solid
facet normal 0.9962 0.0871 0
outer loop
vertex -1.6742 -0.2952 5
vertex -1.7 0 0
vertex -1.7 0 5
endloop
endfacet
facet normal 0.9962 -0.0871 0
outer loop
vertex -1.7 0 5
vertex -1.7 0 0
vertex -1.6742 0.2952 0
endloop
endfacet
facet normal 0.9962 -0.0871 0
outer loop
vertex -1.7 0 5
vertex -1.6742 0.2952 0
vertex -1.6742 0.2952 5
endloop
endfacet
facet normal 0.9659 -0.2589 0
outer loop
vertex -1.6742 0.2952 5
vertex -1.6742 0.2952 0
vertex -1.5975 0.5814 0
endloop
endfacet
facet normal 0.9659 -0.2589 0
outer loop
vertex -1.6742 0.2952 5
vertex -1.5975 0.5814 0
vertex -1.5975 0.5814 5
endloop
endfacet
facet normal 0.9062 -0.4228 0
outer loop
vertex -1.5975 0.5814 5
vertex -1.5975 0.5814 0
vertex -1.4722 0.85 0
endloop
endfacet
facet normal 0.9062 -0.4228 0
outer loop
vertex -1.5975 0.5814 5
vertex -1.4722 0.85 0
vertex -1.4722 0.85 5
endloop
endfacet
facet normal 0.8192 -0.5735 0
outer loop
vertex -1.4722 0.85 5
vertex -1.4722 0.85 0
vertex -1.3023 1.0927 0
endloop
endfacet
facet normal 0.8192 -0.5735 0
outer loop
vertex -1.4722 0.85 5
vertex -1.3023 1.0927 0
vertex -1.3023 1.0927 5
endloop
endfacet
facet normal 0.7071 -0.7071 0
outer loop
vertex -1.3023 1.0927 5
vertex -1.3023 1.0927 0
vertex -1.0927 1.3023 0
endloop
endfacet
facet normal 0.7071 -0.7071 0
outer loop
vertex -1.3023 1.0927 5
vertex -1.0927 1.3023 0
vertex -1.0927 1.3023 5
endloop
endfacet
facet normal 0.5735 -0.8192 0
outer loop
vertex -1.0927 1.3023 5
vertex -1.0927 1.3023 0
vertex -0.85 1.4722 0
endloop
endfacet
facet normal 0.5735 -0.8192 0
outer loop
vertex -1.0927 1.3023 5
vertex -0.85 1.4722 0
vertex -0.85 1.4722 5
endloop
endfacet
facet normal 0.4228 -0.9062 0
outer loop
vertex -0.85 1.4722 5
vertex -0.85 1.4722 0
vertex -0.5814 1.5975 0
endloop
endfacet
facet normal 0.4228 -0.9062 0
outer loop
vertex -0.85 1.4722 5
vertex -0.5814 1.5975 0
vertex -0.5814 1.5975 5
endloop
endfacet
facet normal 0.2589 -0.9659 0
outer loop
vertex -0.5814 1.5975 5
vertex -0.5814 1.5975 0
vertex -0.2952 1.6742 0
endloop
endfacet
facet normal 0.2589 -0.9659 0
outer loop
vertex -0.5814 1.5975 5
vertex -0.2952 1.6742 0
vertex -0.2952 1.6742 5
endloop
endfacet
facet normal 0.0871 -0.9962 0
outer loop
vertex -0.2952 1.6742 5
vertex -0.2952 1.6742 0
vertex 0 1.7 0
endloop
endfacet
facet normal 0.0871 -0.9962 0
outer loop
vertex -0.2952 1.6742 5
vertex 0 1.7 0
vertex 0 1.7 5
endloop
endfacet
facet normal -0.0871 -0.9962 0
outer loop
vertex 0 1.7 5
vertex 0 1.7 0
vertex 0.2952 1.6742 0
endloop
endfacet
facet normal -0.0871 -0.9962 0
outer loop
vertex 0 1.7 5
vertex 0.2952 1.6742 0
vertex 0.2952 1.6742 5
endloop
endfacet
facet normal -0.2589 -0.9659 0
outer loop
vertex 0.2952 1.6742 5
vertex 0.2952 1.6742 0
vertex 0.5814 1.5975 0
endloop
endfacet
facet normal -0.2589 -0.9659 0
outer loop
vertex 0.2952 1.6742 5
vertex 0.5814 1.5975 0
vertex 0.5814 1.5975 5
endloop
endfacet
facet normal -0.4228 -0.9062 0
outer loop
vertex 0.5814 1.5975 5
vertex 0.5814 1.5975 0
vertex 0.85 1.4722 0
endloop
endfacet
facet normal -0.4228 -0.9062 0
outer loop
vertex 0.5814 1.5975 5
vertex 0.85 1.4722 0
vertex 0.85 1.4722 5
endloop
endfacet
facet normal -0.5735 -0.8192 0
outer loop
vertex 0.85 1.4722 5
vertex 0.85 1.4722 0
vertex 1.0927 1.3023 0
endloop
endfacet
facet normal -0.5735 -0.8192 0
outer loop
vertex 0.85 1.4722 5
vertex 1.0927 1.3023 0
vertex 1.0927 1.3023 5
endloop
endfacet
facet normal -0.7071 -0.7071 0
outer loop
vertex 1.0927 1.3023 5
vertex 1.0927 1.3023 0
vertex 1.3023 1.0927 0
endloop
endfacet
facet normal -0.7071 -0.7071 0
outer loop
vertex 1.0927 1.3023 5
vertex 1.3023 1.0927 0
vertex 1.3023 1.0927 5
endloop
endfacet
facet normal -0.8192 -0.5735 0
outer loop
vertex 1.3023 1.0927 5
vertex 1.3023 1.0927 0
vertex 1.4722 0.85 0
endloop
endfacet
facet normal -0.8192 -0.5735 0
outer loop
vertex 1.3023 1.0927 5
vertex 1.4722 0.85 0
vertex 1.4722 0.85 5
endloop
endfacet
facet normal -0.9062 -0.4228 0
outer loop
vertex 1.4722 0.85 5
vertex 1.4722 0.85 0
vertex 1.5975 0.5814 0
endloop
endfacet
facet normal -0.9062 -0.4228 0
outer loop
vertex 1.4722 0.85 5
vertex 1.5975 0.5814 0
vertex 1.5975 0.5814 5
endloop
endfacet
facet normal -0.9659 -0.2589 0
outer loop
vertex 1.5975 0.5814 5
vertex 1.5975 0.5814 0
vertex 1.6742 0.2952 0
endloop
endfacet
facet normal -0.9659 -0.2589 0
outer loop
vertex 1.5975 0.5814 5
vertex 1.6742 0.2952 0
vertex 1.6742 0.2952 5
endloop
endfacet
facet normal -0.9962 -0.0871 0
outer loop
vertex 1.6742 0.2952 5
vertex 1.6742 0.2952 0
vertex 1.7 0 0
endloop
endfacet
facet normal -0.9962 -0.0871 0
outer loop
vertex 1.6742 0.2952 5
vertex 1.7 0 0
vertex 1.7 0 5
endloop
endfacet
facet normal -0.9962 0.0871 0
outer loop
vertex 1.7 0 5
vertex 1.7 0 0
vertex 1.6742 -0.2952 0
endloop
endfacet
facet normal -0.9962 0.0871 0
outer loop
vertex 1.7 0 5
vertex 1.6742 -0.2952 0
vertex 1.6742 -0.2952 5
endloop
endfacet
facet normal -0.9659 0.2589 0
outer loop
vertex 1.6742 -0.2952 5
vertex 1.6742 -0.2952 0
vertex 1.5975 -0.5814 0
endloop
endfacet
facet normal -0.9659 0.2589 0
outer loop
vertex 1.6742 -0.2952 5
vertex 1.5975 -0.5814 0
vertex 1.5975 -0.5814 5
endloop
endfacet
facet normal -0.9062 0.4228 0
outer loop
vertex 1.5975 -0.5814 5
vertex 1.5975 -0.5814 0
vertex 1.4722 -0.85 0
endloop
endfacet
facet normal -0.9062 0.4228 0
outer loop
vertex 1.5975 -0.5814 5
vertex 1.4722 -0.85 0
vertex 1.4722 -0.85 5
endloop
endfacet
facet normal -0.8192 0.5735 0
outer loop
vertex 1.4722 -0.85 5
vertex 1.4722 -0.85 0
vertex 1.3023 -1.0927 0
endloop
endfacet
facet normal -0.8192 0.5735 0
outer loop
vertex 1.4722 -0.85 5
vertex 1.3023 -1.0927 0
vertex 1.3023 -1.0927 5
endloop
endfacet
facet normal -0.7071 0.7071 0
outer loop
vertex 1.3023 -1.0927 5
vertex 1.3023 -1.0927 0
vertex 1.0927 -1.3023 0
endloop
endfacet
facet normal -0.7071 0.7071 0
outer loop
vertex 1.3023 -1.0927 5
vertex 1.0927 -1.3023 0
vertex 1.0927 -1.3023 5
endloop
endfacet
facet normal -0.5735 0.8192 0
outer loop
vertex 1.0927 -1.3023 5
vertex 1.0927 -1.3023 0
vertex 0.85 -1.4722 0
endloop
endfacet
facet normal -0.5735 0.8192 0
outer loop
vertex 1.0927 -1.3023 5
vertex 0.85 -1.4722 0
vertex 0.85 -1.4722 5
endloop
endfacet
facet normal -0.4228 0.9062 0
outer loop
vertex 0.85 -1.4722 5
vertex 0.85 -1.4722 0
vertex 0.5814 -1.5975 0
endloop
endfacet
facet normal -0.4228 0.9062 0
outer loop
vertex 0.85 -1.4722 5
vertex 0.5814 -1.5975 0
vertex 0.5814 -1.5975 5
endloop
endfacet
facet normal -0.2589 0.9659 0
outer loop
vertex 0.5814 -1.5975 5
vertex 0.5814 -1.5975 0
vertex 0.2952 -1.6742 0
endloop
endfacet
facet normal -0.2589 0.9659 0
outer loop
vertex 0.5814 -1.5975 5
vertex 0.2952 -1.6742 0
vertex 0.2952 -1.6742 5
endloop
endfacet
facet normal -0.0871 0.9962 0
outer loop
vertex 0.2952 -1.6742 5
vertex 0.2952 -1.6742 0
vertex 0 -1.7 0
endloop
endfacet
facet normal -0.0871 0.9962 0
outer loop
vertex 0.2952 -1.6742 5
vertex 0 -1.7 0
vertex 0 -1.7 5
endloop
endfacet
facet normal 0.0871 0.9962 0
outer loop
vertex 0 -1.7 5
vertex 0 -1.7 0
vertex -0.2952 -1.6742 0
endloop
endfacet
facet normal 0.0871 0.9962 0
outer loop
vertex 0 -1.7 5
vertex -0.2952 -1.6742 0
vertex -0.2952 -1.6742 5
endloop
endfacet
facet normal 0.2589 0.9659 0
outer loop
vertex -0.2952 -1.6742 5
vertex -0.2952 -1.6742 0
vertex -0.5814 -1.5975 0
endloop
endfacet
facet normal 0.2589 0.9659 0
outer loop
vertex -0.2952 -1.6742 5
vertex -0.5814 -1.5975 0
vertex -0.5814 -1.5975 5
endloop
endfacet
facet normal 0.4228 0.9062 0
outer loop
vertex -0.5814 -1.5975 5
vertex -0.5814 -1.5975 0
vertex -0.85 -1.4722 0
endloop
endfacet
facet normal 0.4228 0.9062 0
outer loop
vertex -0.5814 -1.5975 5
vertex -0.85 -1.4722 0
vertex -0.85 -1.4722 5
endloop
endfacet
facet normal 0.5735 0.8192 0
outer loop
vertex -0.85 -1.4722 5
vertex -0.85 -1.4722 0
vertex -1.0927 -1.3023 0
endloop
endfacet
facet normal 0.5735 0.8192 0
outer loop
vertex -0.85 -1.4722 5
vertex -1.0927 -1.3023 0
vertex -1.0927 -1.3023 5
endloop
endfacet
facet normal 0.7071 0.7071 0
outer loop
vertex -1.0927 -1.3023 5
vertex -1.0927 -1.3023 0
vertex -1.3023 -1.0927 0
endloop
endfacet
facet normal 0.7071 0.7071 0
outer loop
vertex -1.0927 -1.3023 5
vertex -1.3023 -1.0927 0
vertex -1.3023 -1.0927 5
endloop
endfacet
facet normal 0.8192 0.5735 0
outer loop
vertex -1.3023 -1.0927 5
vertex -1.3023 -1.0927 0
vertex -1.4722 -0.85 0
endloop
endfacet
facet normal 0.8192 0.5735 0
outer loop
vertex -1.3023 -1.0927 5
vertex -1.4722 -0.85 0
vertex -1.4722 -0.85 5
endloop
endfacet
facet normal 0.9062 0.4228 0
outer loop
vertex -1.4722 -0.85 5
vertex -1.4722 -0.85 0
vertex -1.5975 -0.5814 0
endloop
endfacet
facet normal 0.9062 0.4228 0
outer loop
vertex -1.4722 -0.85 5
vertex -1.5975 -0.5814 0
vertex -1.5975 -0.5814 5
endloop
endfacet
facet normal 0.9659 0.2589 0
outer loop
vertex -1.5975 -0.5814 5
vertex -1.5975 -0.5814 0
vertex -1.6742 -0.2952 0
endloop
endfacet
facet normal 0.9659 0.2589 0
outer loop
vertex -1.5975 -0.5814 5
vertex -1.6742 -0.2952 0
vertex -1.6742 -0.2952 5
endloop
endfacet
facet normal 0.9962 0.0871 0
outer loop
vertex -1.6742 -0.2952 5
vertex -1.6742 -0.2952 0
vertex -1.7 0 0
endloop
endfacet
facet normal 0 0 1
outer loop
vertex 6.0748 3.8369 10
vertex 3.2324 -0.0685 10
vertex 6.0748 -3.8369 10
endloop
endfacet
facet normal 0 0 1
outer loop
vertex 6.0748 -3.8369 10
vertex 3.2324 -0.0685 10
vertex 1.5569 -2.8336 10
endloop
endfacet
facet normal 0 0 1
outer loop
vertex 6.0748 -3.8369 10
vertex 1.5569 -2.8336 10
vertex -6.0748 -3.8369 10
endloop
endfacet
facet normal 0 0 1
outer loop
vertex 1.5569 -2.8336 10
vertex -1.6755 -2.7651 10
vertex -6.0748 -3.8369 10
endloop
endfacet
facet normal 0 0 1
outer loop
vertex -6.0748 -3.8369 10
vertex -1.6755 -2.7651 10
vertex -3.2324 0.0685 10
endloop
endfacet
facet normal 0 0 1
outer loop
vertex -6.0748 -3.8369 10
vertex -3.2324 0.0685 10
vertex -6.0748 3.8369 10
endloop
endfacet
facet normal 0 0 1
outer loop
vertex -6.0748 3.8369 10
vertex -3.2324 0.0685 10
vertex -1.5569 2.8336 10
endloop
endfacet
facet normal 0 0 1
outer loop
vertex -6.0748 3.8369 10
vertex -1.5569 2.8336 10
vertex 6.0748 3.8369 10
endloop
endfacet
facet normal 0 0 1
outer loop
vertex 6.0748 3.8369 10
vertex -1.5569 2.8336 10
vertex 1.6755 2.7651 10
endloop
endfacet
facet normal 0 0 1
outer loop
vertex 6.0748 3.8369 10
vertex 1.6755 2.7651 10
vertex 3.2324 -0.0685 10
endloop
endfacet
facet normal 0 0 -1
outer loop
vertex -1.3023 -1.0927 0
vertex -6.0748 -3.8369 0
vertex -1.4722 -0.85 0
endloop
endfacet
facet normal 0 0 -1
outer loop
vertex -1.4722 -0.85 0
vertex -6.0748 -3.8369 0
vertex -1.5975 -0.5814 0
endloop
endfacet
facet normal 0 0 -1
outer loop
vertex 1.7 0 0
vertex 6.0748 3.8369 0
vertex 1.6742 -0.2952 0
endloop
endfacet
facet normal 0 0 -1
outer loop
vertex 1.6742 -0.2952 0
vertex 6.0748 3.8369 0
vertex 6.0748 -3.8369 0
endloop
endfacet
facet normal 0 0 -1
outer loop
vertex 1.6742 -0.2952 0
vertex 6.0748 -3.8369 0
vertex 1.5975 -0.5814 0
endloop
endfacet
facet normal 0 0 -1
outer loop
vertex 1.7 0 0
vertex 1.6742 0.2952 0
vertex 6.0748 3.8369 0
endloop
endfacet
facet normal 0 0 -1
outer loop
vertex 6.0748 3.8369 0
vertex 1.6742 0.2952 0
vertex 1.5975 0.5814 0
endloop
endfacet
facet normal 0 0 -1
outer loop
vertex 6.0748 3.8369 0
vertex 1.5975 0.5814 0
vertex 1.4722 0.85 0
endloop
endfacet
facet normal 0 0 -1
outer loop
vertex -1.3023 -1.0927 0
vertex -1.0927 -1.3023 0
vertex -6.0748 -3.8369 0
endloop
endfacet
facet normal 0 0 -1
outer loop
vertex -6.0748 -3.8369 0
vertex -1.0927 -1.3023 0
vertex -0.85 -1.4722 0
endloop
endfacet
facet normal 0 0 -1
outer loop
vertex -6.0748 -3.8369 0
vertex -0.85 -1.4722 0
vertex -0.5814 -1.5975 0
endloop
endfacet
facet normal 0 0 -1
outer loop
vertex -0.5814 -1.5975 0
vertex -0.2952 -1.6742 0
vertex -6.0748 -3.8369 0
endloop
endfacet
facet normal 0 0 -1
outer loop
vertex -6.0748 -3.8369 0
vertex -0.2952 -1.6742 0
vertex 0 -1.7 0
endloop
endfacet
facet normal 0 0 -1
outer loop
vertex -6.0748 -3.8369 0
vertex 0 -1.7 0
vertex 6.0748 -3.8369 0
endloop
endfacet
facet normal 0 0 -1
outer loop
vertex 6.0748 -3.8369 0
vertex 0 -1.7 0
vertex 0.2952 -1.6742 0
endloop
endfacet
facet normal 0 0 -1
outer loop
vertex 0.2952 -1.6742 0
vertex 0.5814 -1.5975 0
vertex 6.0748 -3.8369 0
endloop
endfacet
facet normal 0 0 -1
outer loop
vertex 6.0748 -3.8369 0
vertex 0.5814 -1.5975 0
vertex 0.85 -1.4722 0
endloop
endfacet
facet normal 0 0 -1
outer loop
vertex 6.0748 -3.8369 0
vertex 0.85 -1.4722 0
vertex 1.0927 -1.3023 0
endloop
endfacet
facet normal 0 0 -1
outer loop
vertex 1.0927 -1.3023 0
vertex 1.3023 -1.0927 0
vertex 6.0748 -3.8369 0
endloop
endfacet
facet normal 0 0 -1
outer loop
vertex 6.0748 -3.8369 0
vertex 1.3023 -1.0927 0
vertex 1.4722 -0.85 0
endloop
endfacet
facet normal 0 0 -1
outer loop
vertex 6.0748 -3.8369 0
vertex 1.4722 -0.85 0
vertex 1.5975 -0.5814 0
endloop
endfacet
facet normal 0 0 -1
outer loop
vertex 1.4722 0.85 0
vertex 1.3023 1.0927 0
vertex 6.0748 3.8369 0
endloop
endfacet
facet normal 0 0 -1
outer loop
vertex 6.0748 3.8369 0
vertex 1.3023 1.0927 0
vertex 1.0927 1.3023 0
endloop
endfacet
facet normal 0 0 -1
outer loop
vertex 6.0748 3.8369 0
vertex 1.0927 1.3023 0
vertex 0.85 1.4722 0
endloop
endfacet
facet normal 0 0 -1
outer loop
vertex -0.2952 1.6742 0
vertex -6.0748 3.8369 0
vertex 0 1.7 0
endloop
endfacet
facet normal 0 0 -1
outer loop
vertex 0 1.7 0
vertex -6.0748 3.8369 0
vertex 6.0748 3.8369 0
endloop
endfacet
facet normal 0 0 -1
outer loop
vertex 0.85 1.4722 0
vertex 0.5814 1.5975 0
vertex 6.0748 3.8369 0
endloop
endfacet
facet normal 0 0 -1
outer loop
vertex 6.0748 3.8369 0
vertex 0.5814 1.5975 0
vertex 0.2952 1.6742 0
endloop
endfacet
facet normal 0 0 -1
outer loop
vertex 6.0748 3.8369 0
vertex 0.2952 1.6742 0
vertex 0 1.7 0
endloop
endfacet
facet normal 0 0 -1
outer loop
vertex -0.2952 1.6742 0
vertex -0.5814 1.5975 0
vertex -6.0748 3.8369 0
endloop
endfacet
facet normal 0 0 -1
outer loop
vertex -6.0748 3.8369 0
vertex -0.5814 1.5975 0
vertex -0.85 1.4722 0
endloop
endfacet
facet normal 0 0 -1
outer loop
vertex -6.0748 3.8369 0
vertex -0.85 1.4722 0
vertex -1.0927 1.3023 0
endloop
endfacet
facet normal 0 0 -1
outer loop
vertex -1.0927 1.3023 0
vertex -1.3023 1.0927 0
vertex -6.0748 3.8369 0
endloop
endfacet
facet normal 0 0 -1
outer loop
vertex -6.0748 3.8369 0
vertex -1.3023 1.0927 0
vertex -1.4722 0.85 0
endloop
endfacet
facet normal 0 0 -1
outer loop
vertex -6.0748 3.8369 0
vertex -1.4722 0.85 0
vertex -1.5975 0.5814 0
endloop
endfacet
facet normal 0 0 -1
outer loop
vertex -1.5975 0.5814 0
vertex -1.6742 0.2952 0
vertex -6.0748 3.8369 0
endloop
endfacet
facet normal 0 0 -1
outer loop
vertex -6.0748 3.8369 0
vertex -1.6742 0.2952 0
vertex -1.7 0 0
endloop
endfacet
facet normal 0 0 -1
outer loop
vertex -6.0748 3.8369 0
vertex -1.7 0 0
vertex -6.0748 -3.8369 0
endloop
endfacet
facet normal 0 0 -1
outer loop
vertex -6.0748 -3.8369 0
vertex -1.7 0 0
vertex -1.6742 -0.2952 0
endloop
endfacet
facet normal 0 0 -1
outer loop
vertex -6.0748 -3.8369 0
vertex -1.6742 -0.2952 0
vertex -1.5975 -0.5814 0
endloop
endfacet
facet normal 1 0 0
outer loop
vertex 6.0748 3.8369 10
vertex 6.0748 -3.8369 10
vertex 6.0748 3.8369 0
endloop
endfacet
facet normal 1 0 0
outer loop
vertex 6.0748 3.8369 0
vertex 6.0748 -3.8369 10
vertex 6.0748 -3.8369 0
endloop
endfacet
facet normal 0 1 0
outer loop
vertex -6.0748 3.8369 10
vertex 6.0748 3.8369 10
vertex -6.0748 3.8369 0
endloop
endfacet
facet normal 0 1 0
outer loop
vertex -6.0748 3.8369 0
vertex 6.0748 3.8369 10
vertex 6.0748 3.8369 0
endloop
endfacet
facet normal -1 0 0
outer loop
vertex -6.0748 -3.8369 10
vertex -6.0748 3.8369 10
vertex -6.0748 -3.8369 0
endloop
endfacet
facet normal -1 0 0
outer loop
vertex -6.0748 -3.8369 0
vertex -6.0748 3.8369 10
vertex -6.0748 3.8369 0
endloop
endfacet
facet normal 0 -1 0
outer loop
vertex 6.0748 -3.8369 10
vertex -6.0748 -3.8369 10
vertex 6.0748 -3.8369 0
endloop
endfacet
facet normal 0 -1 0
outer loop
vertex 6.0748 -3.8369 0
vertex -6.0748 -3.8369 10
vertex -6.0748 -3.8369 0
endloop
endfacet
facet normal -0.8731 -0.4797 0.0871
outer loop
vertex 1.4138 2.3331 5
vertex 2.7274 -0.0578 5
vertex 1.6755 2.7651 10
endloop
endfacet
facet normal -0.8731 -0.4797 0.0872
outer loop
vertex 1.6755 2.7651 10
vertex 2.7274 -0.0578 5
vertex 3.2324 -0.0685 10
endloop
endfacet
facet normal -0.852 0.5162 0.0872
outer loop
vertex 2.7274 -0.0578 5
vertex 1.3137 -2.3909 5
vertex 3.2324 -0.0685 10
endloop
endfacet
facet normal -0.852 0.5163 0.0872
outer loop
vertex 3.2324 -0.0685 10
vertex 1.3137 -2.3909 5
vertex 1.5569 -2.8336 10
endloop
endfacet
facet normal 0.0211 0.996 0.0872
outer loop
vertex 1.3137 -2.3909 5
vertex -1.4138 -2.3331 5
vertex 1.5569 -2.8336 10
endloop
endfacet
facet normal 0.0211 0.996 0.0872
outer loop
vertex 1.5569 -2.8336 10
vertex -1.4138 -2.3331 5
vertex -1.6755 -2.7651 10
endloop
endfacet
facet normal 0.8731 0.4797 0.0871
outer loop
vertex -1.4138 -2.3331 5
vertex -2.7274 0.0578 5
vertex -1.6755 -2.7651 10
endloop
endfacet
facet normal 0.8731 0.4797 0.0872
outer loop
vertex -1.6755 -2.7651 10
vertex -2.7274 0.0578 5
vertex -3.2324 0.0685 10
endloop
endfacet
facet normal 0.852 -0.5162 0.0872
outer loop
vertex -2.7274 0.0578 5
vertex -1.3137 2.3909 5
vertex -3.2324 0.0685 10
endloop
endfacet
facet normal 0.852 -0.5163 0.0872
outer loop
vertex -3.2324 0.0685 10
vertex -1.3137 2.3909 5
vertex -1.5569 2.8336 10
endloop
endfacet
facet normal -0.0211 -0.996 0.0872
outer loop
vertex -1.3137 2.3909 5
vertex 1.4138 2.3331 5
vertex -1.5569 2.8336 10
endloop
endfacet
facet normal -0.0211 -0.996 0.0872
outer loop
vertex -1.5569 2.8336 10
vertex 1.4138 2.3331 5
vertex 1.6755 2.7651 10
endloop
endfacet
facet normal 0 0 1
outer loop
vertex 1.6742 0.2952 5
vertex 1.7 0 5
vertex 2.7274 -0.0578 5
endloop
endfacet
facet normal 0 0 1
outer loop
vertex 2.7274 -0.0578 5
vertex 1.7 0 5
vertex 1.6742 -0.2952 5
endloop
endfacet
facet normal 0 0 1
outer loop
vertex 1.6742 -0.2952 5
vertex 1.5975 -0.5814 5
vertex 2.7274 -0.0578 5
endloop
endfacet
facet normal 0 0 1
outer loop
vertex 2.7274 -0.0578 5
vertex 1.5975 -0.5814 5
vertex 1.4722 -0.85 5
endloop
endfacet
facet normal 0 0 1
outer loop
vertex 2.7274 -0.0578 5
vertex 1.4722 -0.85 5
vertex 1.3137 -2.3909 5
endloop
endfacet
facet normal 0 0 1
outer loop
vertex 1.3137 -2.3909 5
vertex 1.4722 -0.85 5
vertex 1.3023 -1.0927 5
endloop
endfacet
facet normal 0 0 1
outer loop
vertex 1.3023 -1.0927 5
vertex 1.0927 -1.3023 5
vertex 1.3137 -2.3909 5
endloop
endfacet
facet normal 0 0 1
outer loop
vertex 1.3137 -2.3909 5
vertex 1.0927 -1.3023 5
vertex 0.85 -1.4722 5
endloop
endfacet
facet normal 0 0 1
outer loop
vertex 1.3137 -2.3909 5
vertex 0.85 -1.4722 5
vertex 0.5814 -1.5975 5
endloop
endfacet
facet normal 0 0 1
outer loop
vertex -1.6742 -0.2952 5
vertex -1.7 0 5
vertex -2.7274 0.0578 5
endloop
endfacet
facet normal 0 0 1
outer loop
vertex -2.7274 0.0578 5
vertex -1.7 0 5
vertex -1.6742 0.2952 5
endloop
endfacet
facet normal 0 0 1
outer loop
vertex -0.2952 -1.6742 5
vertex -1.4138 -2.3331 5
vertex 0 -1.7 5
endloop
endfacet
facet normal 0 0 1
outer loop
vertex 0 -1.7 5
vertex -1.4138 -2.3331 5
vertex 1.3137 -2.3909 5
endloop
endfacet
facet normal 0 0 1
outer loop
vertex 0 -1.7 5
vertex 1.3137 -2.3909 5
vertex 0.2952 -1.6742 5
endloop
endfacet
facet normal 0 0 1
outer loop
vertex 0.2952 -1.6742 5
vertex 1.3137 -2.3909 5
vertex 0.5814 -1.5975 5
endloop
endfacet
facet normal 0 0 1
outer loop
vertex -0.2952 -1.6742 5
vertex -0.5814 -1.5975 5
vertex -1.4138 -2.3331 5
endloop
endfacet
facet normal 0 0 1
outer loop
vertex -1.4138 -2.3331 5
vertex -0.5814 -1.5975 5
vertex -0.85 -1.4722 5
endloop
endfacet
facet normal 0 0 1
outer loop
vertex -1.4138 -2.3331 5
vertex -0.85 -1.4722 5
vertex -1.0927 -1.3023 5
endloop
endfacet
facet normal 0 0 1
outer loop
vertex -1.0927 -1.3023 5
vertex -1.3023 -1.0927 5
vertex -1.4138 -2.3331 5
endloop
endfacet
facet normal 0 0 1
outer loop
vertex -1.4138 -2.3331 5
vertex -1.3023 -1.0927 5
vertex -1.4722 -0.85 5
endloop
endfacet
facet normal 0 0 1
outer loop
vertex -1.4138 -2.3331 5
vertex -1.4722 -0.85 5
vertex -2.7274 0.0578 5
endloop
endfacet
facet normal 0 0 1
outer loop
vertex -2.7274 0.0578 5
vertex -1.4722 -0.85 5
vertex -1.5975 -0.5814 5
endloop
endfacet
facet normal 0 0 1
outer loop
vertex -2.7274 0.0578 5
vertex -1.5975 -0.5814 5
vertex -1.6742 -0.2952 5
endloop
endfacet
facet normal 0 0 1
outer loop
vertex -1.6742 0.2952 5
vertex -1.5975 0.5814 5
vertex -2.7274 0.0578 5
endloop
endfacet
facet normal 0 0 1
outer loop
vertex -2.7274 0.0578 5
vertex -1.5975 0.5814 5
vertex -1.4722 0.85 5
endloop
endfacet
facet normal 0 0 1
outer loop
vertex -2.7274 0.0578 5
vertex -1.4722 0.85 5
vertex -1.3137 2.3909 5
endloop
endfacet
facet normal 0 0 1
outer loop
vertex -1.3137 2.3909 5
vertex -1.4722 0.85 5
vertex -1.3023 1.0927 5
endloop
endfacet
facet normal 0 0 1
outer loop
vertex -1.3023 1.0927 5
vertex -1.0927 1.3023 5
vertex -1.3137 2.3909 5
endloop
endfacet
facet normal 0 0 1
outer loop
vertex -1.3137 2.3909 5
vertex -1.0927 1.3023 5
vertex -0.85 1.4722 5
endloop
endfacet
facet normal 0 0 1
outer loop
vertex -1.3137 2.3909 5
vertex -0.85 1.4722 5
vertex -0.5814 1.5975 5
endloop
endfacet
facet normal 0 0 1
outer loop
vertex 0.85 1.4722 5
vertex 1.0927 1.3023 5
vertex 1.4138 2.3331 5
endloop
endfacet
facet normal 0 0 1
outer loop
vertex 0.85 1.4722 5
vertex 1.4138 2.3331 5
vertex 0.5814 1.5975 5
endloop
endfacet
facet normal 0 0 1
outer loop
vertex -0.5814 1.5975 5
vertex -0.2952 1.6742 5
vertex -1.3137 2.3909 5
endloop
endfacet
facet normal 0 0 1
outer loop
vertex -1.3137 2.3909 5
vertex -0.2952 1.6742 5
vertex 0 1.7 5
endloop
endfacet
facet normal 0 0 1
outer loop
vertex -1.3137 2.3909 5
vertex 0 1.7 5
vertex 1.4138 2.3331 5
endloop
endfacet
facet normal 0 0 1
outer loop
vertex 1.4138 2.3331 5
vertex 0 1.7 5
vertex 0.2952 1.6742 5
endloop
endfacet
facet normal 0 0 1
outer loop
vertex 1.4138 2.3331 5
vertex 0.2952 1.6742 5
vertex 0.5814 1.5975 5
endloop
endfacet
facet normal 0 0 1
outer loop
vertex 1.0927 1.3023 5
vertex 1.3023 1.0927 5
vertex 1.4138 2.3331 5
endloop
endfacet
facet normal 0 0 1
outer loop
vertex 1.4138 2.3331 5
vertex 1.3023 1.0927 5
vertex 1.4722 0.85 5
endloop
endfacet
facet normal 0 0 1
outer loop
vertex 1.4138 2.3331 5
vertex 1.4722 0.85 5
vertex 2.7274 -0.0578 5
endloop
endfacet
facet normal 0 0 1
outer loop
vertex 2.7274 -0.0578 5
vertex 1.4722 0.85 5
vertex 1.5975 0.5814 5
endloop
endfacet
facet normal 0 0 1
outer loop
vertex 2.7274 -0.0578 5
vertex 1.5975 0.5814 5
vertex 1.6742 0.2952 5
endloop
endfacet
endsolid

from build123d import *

# Parameters (mm, degrees)
ESQUISSE1_W             = 12.149550462
ESQUISSE1_H             = 7.67378493
ESQUISSE1_R             = 1.7
BOSS_EXTRU_1_DEPTH      = 10
ENL_V_MAT_EXTRU_1_DEPTH = 5
ENL_V_MAT_EXTRU_1_TAPER = 5


with BuildPart() as part:
    # Esquisse1 → Boss.-Extru.1 (new body)
    with BuildSketch(Plane.XY):
        Rectangle(ESQUISSE1_W, ESQUISSE1_H)
        Circle(ESQUISSE1_R, mode=Mode.SUBTRACT)
    extrude(amount=BOSS_EXTRU_1_DEPTH)

    # Esquisse2 → Enlèv. mat.-Extru.1 (cut)
    with BuildSketch(Plane.XY.offset(10)):
        Polygon((1.675518047, 2.765135188), (-1.556918294, 2.833608787), (-3.232436341, 0.068473599), (-1.675518047, -2.765135188), (1.556918294, -2.833608787), (3.232436341, -0.068473599), align=None)
    extrude(amount=-ENL_V_MAT_EXTRU_1_DEPTH, taper=ENL_V_MAT_EXTRU_1_TAPER, mode=Mode.SUBTRACT)


solid = part.part
